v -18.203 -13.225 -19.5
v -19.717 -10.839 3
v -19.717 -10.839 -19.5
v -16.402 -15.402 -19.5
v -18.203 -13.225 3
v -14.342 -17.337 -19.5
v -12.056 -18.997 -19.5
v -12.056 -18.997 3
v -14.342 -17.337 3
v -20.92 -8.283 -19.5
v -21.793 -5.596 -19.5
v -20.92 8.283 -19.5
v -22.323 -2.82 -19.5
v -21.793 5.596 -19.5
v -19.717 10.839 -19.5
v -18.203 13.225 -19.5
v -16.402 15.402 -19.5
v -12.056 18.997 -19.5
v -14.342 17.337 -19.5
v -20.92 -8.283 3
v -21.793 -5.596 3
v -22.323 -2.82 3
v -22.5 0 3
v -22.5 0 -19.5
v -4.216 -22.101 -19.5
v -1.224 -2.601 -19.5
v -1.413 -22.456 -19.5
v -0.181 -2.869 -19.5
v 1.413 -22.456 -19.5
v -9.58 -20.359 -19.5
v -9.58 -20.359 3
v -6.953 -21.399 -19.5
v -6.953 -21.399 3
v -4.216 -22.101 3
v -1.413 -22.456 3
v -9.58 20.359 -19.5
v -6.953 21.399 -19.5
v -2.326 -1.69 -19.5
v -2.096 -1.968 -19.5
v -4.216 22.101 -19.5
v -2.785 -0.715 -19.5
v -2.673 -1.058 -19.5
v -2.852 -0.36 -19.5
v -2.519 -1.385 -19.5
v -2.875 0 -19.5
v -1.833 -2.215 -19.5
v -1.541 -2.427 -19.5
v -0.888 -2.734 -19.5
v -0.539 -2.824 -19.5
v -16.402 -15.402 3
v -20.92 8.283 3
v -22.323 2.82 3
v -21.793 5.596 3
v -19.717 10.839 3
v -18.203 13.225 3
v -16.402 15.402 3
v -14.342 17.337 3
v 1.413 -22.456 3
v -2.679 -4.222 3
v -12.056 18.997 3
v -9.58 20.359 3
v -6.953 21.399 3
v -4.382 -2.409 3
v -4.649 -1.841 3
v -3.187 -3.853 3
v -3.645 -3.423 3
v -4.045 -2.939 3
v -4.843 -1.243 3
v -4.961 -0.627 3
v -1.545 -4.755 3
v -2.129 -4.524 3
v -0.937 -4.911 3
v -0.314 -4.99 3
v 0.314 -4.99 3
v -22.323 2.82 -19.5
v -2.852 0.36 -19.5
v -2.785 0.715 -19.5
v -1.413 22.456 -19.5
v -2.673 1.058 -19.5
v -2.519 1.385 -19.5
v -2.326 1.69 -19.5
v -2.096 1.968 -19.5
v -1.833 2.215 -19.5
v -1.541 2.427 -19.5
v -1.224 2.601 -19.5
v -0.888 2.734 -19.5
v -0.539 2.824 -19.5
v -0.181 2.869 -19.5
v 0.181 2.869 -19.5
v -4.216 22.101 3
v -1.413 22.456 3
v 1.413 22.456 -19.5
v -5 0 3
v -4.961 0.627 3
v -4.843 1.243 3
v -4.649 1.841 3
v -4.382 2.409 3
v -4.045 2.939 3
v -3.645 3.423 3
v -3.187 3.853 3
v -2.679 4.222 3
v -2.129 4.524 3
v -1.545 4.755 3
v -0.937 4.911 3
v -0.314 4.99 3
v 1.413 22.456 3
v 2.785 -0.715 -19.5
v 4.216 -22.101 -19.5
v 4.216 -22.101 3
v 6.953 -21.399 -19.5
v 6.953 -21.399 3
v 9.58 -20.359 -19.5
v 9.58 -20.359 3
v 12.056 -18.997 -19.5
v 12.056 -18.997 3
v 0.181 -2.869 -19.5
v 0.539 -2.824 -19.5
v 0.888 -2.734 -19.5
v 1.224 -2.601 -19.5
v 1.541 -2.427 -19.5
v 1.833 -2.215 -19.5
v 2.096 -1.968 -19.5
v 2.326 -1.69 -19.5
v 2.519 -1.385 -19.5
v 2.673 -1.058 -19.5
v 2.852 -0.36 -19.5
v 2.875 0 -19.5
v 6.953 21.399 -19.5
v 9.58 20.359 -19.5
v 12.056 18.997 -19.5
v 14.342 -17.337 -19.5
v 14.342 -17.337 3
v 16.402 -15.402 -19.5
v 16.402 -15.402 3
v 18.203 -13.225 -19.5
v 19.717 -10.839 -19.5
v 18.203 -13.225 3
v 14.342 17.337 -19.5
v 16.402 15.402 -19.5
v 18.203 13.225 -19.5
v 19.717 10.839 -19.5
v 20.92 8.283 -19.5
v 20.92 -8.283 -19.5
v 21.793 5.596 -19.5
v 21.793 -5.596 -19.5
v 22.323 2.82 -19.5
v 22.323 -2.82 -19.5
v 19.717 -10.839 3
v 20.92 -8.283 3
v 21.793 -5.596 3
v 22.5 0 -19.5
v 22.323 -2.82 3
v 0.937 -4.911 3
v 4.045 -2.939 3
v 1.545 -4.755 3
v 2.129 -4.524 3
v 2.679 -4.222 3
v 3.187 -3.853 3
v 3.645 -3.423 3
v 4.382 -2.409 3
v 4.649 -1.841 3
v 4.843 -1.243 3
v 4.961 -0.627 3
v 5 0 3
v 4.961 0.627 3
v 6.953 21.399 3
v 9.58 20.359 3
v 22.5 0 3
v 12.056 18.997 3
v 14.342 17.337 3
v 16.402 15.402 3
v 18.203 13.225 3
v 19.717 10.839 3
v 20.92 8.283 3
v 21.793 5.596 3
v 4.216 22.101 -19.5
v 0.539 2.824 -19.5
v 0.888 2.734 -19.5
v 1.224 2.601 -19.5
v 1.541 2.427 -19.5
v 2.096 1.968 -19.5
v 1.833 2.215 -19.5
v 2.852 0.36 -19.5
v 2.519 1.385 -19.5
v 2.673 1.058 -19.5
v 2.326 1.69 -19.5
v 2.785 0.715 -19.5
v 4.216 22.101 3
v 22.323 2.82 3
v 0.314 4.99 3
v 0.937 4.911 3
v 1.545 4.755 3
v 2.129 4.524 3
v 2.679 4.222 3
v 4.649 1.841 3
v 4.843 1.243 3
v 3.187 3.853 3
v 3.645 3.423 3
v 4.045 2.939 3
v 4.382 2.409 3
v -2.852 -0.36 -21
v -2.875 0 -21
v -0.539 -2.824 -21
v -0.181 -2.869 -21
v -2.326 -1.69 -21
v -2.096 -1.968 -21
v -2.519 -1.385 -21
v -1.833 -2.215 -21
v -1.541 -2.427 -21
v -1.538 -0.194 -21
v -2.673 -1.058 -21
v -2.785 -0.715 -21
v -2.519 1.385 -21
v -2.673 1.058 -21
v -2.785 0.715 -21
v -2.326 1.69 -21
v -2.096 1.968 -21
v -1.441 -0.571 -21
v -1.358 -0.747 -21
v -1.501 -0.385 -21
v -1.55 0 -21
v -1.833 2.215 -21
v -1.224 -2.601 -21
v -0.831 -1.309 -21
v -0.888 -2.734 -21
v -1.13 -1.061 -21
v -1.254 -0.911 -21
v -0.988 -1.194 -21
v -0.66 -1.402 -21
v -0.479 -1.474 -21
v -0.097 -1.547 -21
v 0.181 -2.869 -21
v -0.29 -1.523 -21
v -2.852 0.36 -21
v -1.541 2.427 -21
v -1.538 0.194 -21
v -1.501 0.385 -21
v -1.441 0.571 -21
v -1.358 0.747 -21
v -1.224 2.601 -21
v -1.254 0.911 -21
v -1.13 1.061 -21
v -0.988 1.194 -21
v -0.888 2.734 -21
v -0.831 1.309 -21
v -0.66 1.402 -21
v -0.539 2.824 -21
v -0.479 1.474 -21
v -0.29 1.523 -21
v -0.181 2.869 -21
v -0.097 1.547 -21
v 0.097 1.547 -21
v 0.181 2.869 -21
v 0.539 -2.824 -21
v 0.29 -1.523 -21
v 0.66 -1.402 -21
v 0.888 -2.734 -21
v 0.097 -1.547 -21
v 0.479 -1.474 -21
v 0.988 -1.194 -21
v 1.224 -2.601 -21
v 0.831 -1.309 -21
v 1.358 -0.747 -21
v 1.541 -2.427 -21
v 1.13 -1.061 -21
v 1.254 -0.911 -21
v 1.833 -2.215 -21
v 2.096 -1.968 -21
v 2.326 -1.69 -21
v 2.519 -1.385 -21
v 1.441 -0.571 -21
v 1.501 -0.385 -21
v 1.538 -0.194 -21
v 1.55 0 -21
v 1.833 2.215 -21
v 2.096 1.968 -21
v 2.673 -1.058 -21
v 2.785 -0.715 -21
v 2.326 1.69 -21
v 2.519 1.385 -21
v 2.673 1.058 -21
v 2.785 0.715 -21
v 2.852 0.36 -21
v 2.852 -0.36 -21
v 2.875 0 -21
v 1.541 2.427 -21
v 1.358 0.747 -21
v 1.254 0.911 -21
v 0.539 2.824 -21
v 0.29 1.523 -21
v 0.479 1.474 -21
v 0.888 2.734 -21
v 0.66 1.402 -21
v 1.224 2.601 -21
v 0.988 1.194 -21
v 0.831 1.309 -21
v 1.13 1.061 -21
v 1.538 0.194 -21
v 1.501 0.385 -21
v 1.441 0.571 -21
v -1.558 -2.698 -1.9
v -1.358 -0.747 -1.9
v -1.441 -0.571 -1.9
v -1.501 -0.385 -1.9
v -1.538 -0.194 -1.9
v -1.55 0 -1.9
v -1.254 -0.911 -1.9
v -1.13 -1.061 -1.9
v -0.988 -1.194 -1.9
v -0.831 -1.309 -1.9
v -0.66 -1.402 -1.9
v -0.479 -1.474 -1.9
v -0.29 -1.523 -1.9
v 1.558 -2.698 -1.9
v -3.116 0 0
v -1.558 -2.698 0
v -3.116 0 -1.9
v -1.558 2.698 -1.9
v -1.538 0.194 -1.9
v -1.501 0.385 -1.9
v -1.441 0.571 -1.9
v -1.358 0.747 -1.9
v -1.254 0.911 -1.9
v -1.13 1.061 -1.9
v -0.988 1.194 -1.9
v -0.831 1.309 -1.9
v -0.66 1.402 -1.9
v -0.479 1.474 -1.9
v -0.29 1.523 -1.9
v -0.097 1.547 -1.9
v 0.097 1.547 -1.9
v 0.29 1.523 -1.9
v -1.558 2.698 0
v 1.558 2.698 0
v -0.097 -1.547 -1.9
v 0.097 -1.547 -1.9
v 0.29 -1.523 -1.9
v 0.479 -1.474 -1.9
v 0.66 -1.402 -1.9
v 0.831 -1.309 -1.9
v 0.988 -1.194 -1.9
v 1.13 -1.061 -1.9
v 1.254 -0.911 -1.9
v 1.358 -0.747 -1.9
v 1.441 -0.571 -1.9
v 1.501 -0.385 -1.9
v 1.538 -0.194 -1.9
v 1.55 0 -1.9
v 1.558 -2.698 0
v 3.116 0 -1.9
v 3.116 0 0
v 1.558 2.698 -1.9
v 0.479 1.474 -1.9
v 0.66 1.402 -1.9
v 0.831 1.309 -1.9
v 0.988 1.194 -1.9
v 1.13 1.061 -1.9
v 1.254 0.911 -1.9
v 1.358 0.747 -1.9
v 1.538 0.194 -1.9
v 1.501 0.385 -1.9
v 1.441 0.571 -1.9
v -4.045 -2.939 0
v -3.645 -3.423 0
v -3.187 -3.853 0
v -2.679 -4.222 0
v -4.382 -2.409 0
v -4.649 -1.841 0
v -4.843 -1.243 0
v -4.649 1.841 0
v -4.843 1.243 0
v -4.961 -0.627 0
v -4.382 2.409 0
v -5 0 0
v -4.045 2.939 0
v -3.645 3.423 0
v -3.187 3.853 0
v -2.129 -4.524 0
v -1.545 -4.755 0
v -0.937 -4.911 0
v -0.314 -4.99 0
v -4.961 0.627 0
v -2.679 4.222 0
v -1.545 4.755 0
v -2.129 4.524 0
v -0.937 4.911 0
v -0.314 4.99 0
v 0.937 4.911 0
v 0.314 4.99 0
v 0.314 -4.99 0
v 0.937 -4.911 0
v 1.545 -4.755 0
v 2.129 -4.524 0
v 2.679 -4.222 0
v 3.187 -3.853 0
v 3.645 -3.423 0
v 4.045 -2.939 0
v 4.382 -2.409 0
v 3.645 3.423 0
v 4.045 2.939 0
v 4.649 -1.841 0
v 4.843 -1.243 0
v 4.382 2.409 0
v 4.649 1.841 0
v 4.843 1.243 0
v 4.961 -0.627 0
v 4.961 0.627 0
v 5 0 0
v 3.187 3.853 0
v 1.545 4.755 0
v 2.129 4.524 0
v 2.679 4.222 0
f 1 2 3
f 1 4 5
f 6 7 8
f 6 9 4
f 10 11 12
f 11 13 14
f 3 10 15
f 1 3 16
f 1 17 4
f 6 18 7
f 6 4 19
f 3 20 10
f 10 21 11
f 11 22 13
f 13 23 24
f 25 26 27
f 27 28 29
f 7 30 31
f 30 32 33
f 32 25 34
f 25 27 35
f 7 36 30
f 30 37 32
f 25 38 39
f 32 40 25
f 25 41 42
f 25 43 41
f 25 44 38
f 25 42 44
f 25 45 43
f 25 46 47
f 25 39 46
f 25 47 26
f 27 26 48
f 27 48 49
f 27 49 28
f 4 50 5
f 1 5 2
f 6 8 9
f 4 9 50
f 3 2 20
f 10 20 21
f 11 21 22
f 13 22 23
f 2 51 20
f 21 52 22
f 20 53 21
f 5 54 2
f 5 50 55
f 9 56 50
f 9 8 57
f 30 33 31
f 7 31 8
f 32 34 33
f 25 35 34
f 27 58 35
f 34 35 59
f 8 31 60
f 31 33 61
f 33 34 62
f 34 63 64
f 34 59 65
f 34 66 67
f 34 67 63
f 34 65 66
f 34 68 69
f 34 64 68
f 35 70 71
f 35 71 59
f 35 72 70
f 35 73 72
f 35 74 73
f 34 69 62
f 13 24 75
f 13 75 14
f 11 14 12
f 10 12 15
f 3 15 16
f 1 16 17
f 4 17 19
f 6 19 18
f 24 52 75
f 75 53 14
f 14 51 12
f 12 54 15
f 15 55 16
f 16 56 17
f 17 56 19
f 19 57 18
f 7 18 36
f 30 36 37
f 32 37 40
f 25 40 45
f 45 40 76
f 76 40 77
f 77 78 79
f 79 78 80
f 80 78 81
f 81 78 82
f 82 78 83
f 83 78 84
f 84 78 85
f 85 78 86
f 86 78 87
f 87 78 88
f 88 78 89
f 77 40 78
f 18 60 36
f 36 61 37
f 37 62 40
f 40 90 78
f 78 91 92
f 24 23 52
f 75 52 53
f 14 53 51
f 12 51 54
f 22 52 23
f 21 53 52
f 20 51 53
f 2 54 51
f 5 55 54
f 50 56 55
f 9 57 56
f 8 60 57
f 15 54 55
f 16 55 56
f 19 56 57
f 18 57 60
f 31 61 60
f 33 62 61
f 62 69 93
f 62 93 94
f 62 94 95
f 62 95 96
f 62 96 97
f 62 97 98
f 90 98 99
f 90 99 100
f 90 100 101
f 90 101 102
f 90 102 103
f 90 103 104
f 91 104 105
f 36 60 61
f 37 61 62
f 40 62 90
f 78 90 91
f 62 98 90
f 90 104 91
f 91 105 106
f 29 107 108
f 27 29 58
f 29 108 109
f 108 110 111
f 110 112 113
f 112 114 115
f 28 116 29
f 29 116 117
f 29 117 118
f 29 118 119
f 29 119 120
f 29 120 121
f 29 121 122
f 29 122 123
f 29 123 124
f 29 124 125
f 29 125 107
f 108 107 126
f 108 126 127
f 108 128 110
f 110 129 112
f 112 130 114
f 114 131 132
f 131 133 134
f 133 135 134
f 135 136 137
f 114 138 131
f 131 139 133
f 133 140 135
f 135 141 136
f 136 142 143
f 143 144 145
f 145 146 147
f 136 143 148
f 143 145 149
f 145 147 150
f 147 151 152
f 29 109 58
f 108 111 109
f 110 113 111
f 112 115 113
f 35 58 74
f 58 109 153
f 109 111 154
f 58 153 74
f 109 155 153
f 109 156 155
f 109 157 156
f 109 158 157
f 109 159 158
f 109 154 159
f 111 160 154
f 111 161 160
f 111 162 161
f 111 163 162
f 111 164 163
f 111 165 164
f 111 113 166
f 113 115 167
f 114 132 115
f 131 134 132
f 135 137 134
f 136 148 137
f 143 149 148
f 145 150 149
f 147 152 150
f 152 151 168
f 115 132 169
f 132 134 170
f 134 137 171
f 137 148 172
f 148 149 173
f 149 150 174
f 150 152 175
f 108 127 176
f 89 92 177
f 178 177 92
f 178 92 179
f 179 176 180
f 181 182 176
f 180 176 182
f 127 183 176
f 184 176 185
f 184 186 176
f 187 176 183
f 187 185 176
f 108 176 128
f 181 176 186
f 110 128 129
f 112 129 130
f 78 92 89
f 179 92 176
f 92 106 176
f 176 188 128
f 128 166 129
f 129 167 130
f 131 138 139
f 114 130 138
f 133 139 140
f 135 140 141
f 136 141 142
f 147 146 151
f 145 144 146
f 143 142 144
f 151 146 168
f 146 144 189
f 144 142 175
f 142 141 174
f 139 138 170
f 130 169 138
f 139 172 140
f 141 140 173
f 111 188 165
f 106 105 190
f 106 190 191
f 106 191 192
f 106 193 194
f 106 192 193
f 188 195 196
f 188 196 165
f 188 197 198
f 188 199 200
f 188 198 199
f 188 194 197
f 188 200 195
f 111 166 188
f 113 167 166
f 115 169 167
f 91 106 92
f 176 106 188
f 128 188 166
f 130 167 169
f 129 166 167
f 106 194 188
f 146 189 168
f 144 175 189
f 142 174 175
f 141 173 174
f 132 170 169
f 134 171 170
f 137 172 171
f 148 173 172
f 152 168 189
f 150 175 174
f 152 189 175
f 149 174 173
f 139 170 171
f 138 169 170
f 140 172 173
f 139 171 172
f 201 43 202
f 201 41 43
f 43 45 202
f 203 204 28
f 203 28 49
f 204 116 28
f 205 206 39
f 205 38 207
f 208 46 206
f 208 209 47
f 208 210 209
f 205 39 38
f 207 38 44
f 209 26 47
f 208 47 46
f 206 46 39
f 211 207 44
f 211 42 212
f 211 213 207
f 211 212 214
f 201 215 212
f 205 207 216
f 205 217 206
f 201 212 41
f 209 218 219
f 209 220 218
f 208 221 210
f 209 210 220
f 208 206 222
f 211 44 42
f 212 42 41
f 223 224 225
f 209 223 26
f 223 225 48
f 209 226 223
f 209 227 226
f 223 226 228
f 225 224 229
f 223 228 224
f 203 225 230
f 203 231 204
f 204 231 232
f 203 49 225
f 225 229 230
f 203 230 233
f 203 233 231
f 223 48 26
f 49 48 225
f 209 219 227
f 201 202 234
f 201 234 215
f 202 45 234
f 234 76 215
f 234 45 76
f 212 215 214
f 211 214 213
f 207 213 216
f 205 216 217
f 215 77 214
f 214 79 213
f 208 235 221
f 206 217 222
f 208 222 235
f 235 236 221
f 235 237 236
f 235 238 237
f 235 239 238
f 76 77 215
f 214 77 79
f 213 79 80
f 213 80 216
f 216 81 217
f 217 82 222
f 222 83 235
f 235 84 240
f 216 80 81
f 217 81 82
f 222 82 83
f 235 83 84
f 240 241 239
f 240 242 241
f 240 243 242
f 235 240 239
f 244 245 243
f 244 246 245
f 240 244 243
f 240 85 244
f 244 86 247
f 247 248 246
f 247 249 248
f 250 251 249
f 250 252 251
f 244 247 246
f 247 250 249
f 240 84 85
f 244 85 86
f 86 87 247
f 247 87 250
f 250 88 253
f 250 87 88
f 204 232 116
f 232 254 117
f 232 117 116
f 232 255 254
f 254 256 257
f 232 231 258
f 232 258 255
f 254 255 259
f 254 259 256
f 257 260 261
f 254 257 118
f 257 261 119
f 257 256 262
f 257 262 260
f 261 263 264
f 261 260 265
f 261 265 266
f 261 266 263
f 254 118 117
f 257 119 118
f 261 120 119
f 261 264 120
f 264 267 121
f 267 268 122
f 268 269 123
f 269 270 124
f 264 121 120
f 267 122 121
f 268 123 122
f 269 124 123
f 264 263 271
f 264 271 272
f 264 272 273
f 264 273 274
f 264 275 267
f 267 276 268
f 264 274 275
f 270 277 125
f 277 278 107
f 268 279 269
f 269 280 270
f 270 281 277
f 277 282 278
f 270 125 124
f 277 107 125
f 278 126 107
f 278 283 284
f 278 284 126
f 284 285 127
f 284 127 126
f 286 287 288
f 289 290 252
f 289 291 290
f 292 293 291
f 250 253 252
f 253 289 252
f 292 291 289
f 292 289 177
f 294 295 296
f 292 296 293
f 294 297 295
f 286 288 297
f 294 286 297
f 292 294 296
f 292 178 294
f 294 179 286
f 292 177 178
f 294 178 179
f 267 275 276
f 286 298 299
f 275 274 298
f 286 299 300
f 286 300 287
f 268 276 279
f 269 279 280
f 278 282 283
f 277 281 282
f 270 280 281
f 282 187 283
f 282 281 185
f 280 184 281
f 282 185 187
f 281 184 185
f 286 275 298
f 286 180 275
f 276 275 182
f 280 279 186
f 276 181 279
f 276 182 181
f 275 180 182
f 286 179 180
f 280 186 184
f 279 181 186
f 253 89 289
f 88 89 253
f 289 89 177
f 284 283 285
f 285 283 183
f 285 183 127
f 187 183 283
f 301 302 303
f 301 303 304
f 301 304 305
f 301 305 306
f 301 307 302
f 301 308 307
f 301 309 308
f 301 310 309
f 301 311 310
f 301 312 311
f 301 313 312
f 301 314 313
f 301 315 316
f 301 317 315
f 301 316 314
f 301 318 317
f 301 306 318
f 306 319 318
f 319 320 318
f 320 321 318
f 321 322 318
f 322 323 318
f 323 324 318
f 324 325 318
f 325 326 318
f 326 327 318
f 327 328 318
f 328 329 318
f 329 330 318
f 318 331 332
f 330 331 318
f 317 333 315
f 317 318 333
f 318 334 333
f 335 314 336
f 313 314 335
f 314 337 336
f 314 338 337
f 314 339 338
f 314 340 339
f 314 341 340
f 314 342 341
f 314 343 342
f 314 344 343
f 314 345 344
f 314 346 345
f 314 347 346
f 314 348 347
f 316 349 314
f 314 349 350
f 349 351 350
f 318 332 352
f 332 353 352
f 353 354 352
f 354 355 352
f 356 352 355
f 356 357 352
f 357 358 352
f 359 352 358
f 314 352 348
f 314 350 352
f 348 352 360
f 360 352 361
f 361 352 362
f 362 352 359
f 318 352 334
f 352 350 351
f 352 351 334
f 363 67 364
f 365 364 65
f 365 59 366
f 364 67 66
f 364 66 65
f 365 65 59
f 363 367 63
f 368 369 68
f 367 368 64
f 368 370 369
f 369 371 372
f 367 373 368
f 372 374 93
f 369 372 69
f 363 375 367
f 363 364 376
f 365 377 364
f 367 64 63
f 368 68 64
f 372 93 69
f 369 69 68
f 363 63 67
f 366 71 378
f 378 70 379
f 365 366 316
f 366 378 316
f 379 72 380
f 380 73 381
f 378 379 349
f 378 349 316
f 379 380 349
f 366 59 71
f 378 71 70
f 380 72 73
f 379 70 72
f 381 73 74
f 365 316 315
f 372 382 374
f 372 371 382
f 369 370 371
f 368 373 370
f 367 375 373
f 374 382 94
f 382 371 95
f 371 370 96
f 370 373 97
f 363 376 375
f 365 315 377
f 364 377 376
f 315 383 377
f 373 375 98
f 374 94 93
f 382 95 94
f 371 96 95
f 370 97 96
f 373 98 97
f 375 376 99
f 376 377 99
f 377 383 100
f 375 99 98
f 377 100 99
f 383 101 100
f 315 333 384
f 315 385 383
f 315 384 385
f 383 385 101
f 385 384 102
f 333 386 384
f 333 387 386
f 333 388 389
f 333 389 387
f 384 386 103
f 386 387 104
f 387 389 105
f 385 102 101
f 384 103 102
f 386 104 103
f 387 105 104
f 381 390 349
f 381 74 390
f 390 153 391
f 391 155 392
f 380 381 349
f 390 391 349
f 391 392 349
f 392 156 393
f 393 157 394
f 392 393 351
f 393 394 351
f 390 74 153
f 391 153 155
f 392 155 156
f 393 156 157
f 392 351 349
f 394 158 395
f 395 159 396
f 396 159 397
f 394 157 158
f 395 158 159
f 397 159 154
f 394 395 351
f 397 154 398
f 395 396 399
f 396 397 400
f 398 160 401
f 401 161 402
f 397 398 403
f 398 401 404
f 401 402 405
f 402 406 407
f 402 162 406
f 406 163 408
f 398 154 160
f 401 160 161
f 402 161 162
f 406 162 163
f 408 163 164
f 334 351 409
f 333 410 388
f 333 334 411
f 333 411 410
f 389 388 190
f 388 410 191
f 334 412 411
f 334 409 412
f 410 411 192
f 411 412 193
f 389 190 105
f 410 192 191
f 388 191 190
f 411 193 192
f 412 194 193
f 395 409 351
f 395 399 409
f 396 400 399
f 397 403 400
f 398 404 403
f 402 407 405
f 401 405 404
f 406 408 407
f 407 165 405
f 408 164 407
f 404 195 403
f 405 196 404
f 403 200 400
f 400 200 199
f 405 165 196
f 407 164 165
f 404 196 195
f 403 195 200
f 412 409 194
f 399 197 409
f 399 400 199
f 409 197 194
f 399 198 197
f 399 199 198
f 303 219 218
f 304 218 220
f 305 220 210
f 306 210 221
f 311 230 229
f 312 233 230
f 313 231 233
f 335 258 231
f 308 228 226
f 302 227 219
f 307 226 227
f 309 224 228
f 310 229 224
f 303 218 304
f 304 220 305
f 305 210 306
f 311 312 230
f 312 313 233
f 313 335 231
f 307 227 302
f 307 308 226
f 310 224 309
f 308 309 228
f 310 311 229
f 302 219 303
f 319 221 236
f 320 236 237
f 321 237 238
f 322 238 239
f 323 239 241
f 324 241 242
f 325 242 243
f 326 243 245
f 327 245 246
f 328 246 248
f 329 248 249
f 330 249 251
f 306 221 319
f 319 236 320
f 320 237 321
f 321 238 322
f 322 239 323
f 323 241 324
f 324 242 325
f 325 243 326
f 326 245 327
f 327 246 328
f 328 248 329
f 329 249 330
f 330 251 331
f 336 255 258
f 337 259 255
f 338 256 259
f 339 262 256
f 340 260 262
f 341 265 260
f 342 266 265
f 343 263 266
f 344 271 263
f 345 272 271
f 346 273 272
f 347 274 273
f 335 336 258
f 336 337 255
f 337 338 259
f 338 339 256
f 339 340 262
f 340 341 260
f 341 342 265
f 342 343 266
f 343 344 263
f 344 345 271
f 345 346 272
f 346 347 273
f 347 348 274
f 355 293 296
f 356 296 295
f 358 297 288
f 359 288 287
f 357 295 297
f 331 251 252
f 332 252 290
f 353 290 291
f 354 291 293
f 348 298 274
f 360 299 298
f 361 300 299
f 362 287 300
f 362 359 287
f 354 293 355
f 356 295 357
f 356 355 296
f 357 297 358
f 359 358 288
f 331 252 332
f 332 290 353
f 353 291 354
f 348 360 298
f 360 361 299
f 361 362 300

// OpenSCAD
$fn = 50;


difference() {
	union() {
		translate(v = [0, 0, -19.5000000000]) {
			cylinder(h = 22.5000000000, r = 22.5000000000);
		}
		#translate(v = [0, 0, -21.0000000000]) {
			cylinder(h = 21, r = 2.8750000000);
		}
	}
	union() {
		translate(v = [0, 0, 0]) {
			rotate(a = [0, 0, 0]) {
				difference() {
					union() {
						translate(v = [0, 0, -1.9000000000]) {
							linear_extrude(height = 1.9000000000) {
								polygon(points = [[3.1158000000, 0.0000000000], [1.5579000000, 2.6983619531], [-1.5579000000, 2.6983619531], [-3.1158000000, 0.0000000000], [-1.5579000000, -2.6983619531], [1.5579000000, -2.6983619531]]);
							}
						}
					}
					union();
				}
			}
		}
		#cylinder(h = 3, r = 5.0000000000);
		#translate(v = [0, 0, -100.0000000000]) {
			cylinder(h = 200, r = 1.5500000000);
		}
	}
}
